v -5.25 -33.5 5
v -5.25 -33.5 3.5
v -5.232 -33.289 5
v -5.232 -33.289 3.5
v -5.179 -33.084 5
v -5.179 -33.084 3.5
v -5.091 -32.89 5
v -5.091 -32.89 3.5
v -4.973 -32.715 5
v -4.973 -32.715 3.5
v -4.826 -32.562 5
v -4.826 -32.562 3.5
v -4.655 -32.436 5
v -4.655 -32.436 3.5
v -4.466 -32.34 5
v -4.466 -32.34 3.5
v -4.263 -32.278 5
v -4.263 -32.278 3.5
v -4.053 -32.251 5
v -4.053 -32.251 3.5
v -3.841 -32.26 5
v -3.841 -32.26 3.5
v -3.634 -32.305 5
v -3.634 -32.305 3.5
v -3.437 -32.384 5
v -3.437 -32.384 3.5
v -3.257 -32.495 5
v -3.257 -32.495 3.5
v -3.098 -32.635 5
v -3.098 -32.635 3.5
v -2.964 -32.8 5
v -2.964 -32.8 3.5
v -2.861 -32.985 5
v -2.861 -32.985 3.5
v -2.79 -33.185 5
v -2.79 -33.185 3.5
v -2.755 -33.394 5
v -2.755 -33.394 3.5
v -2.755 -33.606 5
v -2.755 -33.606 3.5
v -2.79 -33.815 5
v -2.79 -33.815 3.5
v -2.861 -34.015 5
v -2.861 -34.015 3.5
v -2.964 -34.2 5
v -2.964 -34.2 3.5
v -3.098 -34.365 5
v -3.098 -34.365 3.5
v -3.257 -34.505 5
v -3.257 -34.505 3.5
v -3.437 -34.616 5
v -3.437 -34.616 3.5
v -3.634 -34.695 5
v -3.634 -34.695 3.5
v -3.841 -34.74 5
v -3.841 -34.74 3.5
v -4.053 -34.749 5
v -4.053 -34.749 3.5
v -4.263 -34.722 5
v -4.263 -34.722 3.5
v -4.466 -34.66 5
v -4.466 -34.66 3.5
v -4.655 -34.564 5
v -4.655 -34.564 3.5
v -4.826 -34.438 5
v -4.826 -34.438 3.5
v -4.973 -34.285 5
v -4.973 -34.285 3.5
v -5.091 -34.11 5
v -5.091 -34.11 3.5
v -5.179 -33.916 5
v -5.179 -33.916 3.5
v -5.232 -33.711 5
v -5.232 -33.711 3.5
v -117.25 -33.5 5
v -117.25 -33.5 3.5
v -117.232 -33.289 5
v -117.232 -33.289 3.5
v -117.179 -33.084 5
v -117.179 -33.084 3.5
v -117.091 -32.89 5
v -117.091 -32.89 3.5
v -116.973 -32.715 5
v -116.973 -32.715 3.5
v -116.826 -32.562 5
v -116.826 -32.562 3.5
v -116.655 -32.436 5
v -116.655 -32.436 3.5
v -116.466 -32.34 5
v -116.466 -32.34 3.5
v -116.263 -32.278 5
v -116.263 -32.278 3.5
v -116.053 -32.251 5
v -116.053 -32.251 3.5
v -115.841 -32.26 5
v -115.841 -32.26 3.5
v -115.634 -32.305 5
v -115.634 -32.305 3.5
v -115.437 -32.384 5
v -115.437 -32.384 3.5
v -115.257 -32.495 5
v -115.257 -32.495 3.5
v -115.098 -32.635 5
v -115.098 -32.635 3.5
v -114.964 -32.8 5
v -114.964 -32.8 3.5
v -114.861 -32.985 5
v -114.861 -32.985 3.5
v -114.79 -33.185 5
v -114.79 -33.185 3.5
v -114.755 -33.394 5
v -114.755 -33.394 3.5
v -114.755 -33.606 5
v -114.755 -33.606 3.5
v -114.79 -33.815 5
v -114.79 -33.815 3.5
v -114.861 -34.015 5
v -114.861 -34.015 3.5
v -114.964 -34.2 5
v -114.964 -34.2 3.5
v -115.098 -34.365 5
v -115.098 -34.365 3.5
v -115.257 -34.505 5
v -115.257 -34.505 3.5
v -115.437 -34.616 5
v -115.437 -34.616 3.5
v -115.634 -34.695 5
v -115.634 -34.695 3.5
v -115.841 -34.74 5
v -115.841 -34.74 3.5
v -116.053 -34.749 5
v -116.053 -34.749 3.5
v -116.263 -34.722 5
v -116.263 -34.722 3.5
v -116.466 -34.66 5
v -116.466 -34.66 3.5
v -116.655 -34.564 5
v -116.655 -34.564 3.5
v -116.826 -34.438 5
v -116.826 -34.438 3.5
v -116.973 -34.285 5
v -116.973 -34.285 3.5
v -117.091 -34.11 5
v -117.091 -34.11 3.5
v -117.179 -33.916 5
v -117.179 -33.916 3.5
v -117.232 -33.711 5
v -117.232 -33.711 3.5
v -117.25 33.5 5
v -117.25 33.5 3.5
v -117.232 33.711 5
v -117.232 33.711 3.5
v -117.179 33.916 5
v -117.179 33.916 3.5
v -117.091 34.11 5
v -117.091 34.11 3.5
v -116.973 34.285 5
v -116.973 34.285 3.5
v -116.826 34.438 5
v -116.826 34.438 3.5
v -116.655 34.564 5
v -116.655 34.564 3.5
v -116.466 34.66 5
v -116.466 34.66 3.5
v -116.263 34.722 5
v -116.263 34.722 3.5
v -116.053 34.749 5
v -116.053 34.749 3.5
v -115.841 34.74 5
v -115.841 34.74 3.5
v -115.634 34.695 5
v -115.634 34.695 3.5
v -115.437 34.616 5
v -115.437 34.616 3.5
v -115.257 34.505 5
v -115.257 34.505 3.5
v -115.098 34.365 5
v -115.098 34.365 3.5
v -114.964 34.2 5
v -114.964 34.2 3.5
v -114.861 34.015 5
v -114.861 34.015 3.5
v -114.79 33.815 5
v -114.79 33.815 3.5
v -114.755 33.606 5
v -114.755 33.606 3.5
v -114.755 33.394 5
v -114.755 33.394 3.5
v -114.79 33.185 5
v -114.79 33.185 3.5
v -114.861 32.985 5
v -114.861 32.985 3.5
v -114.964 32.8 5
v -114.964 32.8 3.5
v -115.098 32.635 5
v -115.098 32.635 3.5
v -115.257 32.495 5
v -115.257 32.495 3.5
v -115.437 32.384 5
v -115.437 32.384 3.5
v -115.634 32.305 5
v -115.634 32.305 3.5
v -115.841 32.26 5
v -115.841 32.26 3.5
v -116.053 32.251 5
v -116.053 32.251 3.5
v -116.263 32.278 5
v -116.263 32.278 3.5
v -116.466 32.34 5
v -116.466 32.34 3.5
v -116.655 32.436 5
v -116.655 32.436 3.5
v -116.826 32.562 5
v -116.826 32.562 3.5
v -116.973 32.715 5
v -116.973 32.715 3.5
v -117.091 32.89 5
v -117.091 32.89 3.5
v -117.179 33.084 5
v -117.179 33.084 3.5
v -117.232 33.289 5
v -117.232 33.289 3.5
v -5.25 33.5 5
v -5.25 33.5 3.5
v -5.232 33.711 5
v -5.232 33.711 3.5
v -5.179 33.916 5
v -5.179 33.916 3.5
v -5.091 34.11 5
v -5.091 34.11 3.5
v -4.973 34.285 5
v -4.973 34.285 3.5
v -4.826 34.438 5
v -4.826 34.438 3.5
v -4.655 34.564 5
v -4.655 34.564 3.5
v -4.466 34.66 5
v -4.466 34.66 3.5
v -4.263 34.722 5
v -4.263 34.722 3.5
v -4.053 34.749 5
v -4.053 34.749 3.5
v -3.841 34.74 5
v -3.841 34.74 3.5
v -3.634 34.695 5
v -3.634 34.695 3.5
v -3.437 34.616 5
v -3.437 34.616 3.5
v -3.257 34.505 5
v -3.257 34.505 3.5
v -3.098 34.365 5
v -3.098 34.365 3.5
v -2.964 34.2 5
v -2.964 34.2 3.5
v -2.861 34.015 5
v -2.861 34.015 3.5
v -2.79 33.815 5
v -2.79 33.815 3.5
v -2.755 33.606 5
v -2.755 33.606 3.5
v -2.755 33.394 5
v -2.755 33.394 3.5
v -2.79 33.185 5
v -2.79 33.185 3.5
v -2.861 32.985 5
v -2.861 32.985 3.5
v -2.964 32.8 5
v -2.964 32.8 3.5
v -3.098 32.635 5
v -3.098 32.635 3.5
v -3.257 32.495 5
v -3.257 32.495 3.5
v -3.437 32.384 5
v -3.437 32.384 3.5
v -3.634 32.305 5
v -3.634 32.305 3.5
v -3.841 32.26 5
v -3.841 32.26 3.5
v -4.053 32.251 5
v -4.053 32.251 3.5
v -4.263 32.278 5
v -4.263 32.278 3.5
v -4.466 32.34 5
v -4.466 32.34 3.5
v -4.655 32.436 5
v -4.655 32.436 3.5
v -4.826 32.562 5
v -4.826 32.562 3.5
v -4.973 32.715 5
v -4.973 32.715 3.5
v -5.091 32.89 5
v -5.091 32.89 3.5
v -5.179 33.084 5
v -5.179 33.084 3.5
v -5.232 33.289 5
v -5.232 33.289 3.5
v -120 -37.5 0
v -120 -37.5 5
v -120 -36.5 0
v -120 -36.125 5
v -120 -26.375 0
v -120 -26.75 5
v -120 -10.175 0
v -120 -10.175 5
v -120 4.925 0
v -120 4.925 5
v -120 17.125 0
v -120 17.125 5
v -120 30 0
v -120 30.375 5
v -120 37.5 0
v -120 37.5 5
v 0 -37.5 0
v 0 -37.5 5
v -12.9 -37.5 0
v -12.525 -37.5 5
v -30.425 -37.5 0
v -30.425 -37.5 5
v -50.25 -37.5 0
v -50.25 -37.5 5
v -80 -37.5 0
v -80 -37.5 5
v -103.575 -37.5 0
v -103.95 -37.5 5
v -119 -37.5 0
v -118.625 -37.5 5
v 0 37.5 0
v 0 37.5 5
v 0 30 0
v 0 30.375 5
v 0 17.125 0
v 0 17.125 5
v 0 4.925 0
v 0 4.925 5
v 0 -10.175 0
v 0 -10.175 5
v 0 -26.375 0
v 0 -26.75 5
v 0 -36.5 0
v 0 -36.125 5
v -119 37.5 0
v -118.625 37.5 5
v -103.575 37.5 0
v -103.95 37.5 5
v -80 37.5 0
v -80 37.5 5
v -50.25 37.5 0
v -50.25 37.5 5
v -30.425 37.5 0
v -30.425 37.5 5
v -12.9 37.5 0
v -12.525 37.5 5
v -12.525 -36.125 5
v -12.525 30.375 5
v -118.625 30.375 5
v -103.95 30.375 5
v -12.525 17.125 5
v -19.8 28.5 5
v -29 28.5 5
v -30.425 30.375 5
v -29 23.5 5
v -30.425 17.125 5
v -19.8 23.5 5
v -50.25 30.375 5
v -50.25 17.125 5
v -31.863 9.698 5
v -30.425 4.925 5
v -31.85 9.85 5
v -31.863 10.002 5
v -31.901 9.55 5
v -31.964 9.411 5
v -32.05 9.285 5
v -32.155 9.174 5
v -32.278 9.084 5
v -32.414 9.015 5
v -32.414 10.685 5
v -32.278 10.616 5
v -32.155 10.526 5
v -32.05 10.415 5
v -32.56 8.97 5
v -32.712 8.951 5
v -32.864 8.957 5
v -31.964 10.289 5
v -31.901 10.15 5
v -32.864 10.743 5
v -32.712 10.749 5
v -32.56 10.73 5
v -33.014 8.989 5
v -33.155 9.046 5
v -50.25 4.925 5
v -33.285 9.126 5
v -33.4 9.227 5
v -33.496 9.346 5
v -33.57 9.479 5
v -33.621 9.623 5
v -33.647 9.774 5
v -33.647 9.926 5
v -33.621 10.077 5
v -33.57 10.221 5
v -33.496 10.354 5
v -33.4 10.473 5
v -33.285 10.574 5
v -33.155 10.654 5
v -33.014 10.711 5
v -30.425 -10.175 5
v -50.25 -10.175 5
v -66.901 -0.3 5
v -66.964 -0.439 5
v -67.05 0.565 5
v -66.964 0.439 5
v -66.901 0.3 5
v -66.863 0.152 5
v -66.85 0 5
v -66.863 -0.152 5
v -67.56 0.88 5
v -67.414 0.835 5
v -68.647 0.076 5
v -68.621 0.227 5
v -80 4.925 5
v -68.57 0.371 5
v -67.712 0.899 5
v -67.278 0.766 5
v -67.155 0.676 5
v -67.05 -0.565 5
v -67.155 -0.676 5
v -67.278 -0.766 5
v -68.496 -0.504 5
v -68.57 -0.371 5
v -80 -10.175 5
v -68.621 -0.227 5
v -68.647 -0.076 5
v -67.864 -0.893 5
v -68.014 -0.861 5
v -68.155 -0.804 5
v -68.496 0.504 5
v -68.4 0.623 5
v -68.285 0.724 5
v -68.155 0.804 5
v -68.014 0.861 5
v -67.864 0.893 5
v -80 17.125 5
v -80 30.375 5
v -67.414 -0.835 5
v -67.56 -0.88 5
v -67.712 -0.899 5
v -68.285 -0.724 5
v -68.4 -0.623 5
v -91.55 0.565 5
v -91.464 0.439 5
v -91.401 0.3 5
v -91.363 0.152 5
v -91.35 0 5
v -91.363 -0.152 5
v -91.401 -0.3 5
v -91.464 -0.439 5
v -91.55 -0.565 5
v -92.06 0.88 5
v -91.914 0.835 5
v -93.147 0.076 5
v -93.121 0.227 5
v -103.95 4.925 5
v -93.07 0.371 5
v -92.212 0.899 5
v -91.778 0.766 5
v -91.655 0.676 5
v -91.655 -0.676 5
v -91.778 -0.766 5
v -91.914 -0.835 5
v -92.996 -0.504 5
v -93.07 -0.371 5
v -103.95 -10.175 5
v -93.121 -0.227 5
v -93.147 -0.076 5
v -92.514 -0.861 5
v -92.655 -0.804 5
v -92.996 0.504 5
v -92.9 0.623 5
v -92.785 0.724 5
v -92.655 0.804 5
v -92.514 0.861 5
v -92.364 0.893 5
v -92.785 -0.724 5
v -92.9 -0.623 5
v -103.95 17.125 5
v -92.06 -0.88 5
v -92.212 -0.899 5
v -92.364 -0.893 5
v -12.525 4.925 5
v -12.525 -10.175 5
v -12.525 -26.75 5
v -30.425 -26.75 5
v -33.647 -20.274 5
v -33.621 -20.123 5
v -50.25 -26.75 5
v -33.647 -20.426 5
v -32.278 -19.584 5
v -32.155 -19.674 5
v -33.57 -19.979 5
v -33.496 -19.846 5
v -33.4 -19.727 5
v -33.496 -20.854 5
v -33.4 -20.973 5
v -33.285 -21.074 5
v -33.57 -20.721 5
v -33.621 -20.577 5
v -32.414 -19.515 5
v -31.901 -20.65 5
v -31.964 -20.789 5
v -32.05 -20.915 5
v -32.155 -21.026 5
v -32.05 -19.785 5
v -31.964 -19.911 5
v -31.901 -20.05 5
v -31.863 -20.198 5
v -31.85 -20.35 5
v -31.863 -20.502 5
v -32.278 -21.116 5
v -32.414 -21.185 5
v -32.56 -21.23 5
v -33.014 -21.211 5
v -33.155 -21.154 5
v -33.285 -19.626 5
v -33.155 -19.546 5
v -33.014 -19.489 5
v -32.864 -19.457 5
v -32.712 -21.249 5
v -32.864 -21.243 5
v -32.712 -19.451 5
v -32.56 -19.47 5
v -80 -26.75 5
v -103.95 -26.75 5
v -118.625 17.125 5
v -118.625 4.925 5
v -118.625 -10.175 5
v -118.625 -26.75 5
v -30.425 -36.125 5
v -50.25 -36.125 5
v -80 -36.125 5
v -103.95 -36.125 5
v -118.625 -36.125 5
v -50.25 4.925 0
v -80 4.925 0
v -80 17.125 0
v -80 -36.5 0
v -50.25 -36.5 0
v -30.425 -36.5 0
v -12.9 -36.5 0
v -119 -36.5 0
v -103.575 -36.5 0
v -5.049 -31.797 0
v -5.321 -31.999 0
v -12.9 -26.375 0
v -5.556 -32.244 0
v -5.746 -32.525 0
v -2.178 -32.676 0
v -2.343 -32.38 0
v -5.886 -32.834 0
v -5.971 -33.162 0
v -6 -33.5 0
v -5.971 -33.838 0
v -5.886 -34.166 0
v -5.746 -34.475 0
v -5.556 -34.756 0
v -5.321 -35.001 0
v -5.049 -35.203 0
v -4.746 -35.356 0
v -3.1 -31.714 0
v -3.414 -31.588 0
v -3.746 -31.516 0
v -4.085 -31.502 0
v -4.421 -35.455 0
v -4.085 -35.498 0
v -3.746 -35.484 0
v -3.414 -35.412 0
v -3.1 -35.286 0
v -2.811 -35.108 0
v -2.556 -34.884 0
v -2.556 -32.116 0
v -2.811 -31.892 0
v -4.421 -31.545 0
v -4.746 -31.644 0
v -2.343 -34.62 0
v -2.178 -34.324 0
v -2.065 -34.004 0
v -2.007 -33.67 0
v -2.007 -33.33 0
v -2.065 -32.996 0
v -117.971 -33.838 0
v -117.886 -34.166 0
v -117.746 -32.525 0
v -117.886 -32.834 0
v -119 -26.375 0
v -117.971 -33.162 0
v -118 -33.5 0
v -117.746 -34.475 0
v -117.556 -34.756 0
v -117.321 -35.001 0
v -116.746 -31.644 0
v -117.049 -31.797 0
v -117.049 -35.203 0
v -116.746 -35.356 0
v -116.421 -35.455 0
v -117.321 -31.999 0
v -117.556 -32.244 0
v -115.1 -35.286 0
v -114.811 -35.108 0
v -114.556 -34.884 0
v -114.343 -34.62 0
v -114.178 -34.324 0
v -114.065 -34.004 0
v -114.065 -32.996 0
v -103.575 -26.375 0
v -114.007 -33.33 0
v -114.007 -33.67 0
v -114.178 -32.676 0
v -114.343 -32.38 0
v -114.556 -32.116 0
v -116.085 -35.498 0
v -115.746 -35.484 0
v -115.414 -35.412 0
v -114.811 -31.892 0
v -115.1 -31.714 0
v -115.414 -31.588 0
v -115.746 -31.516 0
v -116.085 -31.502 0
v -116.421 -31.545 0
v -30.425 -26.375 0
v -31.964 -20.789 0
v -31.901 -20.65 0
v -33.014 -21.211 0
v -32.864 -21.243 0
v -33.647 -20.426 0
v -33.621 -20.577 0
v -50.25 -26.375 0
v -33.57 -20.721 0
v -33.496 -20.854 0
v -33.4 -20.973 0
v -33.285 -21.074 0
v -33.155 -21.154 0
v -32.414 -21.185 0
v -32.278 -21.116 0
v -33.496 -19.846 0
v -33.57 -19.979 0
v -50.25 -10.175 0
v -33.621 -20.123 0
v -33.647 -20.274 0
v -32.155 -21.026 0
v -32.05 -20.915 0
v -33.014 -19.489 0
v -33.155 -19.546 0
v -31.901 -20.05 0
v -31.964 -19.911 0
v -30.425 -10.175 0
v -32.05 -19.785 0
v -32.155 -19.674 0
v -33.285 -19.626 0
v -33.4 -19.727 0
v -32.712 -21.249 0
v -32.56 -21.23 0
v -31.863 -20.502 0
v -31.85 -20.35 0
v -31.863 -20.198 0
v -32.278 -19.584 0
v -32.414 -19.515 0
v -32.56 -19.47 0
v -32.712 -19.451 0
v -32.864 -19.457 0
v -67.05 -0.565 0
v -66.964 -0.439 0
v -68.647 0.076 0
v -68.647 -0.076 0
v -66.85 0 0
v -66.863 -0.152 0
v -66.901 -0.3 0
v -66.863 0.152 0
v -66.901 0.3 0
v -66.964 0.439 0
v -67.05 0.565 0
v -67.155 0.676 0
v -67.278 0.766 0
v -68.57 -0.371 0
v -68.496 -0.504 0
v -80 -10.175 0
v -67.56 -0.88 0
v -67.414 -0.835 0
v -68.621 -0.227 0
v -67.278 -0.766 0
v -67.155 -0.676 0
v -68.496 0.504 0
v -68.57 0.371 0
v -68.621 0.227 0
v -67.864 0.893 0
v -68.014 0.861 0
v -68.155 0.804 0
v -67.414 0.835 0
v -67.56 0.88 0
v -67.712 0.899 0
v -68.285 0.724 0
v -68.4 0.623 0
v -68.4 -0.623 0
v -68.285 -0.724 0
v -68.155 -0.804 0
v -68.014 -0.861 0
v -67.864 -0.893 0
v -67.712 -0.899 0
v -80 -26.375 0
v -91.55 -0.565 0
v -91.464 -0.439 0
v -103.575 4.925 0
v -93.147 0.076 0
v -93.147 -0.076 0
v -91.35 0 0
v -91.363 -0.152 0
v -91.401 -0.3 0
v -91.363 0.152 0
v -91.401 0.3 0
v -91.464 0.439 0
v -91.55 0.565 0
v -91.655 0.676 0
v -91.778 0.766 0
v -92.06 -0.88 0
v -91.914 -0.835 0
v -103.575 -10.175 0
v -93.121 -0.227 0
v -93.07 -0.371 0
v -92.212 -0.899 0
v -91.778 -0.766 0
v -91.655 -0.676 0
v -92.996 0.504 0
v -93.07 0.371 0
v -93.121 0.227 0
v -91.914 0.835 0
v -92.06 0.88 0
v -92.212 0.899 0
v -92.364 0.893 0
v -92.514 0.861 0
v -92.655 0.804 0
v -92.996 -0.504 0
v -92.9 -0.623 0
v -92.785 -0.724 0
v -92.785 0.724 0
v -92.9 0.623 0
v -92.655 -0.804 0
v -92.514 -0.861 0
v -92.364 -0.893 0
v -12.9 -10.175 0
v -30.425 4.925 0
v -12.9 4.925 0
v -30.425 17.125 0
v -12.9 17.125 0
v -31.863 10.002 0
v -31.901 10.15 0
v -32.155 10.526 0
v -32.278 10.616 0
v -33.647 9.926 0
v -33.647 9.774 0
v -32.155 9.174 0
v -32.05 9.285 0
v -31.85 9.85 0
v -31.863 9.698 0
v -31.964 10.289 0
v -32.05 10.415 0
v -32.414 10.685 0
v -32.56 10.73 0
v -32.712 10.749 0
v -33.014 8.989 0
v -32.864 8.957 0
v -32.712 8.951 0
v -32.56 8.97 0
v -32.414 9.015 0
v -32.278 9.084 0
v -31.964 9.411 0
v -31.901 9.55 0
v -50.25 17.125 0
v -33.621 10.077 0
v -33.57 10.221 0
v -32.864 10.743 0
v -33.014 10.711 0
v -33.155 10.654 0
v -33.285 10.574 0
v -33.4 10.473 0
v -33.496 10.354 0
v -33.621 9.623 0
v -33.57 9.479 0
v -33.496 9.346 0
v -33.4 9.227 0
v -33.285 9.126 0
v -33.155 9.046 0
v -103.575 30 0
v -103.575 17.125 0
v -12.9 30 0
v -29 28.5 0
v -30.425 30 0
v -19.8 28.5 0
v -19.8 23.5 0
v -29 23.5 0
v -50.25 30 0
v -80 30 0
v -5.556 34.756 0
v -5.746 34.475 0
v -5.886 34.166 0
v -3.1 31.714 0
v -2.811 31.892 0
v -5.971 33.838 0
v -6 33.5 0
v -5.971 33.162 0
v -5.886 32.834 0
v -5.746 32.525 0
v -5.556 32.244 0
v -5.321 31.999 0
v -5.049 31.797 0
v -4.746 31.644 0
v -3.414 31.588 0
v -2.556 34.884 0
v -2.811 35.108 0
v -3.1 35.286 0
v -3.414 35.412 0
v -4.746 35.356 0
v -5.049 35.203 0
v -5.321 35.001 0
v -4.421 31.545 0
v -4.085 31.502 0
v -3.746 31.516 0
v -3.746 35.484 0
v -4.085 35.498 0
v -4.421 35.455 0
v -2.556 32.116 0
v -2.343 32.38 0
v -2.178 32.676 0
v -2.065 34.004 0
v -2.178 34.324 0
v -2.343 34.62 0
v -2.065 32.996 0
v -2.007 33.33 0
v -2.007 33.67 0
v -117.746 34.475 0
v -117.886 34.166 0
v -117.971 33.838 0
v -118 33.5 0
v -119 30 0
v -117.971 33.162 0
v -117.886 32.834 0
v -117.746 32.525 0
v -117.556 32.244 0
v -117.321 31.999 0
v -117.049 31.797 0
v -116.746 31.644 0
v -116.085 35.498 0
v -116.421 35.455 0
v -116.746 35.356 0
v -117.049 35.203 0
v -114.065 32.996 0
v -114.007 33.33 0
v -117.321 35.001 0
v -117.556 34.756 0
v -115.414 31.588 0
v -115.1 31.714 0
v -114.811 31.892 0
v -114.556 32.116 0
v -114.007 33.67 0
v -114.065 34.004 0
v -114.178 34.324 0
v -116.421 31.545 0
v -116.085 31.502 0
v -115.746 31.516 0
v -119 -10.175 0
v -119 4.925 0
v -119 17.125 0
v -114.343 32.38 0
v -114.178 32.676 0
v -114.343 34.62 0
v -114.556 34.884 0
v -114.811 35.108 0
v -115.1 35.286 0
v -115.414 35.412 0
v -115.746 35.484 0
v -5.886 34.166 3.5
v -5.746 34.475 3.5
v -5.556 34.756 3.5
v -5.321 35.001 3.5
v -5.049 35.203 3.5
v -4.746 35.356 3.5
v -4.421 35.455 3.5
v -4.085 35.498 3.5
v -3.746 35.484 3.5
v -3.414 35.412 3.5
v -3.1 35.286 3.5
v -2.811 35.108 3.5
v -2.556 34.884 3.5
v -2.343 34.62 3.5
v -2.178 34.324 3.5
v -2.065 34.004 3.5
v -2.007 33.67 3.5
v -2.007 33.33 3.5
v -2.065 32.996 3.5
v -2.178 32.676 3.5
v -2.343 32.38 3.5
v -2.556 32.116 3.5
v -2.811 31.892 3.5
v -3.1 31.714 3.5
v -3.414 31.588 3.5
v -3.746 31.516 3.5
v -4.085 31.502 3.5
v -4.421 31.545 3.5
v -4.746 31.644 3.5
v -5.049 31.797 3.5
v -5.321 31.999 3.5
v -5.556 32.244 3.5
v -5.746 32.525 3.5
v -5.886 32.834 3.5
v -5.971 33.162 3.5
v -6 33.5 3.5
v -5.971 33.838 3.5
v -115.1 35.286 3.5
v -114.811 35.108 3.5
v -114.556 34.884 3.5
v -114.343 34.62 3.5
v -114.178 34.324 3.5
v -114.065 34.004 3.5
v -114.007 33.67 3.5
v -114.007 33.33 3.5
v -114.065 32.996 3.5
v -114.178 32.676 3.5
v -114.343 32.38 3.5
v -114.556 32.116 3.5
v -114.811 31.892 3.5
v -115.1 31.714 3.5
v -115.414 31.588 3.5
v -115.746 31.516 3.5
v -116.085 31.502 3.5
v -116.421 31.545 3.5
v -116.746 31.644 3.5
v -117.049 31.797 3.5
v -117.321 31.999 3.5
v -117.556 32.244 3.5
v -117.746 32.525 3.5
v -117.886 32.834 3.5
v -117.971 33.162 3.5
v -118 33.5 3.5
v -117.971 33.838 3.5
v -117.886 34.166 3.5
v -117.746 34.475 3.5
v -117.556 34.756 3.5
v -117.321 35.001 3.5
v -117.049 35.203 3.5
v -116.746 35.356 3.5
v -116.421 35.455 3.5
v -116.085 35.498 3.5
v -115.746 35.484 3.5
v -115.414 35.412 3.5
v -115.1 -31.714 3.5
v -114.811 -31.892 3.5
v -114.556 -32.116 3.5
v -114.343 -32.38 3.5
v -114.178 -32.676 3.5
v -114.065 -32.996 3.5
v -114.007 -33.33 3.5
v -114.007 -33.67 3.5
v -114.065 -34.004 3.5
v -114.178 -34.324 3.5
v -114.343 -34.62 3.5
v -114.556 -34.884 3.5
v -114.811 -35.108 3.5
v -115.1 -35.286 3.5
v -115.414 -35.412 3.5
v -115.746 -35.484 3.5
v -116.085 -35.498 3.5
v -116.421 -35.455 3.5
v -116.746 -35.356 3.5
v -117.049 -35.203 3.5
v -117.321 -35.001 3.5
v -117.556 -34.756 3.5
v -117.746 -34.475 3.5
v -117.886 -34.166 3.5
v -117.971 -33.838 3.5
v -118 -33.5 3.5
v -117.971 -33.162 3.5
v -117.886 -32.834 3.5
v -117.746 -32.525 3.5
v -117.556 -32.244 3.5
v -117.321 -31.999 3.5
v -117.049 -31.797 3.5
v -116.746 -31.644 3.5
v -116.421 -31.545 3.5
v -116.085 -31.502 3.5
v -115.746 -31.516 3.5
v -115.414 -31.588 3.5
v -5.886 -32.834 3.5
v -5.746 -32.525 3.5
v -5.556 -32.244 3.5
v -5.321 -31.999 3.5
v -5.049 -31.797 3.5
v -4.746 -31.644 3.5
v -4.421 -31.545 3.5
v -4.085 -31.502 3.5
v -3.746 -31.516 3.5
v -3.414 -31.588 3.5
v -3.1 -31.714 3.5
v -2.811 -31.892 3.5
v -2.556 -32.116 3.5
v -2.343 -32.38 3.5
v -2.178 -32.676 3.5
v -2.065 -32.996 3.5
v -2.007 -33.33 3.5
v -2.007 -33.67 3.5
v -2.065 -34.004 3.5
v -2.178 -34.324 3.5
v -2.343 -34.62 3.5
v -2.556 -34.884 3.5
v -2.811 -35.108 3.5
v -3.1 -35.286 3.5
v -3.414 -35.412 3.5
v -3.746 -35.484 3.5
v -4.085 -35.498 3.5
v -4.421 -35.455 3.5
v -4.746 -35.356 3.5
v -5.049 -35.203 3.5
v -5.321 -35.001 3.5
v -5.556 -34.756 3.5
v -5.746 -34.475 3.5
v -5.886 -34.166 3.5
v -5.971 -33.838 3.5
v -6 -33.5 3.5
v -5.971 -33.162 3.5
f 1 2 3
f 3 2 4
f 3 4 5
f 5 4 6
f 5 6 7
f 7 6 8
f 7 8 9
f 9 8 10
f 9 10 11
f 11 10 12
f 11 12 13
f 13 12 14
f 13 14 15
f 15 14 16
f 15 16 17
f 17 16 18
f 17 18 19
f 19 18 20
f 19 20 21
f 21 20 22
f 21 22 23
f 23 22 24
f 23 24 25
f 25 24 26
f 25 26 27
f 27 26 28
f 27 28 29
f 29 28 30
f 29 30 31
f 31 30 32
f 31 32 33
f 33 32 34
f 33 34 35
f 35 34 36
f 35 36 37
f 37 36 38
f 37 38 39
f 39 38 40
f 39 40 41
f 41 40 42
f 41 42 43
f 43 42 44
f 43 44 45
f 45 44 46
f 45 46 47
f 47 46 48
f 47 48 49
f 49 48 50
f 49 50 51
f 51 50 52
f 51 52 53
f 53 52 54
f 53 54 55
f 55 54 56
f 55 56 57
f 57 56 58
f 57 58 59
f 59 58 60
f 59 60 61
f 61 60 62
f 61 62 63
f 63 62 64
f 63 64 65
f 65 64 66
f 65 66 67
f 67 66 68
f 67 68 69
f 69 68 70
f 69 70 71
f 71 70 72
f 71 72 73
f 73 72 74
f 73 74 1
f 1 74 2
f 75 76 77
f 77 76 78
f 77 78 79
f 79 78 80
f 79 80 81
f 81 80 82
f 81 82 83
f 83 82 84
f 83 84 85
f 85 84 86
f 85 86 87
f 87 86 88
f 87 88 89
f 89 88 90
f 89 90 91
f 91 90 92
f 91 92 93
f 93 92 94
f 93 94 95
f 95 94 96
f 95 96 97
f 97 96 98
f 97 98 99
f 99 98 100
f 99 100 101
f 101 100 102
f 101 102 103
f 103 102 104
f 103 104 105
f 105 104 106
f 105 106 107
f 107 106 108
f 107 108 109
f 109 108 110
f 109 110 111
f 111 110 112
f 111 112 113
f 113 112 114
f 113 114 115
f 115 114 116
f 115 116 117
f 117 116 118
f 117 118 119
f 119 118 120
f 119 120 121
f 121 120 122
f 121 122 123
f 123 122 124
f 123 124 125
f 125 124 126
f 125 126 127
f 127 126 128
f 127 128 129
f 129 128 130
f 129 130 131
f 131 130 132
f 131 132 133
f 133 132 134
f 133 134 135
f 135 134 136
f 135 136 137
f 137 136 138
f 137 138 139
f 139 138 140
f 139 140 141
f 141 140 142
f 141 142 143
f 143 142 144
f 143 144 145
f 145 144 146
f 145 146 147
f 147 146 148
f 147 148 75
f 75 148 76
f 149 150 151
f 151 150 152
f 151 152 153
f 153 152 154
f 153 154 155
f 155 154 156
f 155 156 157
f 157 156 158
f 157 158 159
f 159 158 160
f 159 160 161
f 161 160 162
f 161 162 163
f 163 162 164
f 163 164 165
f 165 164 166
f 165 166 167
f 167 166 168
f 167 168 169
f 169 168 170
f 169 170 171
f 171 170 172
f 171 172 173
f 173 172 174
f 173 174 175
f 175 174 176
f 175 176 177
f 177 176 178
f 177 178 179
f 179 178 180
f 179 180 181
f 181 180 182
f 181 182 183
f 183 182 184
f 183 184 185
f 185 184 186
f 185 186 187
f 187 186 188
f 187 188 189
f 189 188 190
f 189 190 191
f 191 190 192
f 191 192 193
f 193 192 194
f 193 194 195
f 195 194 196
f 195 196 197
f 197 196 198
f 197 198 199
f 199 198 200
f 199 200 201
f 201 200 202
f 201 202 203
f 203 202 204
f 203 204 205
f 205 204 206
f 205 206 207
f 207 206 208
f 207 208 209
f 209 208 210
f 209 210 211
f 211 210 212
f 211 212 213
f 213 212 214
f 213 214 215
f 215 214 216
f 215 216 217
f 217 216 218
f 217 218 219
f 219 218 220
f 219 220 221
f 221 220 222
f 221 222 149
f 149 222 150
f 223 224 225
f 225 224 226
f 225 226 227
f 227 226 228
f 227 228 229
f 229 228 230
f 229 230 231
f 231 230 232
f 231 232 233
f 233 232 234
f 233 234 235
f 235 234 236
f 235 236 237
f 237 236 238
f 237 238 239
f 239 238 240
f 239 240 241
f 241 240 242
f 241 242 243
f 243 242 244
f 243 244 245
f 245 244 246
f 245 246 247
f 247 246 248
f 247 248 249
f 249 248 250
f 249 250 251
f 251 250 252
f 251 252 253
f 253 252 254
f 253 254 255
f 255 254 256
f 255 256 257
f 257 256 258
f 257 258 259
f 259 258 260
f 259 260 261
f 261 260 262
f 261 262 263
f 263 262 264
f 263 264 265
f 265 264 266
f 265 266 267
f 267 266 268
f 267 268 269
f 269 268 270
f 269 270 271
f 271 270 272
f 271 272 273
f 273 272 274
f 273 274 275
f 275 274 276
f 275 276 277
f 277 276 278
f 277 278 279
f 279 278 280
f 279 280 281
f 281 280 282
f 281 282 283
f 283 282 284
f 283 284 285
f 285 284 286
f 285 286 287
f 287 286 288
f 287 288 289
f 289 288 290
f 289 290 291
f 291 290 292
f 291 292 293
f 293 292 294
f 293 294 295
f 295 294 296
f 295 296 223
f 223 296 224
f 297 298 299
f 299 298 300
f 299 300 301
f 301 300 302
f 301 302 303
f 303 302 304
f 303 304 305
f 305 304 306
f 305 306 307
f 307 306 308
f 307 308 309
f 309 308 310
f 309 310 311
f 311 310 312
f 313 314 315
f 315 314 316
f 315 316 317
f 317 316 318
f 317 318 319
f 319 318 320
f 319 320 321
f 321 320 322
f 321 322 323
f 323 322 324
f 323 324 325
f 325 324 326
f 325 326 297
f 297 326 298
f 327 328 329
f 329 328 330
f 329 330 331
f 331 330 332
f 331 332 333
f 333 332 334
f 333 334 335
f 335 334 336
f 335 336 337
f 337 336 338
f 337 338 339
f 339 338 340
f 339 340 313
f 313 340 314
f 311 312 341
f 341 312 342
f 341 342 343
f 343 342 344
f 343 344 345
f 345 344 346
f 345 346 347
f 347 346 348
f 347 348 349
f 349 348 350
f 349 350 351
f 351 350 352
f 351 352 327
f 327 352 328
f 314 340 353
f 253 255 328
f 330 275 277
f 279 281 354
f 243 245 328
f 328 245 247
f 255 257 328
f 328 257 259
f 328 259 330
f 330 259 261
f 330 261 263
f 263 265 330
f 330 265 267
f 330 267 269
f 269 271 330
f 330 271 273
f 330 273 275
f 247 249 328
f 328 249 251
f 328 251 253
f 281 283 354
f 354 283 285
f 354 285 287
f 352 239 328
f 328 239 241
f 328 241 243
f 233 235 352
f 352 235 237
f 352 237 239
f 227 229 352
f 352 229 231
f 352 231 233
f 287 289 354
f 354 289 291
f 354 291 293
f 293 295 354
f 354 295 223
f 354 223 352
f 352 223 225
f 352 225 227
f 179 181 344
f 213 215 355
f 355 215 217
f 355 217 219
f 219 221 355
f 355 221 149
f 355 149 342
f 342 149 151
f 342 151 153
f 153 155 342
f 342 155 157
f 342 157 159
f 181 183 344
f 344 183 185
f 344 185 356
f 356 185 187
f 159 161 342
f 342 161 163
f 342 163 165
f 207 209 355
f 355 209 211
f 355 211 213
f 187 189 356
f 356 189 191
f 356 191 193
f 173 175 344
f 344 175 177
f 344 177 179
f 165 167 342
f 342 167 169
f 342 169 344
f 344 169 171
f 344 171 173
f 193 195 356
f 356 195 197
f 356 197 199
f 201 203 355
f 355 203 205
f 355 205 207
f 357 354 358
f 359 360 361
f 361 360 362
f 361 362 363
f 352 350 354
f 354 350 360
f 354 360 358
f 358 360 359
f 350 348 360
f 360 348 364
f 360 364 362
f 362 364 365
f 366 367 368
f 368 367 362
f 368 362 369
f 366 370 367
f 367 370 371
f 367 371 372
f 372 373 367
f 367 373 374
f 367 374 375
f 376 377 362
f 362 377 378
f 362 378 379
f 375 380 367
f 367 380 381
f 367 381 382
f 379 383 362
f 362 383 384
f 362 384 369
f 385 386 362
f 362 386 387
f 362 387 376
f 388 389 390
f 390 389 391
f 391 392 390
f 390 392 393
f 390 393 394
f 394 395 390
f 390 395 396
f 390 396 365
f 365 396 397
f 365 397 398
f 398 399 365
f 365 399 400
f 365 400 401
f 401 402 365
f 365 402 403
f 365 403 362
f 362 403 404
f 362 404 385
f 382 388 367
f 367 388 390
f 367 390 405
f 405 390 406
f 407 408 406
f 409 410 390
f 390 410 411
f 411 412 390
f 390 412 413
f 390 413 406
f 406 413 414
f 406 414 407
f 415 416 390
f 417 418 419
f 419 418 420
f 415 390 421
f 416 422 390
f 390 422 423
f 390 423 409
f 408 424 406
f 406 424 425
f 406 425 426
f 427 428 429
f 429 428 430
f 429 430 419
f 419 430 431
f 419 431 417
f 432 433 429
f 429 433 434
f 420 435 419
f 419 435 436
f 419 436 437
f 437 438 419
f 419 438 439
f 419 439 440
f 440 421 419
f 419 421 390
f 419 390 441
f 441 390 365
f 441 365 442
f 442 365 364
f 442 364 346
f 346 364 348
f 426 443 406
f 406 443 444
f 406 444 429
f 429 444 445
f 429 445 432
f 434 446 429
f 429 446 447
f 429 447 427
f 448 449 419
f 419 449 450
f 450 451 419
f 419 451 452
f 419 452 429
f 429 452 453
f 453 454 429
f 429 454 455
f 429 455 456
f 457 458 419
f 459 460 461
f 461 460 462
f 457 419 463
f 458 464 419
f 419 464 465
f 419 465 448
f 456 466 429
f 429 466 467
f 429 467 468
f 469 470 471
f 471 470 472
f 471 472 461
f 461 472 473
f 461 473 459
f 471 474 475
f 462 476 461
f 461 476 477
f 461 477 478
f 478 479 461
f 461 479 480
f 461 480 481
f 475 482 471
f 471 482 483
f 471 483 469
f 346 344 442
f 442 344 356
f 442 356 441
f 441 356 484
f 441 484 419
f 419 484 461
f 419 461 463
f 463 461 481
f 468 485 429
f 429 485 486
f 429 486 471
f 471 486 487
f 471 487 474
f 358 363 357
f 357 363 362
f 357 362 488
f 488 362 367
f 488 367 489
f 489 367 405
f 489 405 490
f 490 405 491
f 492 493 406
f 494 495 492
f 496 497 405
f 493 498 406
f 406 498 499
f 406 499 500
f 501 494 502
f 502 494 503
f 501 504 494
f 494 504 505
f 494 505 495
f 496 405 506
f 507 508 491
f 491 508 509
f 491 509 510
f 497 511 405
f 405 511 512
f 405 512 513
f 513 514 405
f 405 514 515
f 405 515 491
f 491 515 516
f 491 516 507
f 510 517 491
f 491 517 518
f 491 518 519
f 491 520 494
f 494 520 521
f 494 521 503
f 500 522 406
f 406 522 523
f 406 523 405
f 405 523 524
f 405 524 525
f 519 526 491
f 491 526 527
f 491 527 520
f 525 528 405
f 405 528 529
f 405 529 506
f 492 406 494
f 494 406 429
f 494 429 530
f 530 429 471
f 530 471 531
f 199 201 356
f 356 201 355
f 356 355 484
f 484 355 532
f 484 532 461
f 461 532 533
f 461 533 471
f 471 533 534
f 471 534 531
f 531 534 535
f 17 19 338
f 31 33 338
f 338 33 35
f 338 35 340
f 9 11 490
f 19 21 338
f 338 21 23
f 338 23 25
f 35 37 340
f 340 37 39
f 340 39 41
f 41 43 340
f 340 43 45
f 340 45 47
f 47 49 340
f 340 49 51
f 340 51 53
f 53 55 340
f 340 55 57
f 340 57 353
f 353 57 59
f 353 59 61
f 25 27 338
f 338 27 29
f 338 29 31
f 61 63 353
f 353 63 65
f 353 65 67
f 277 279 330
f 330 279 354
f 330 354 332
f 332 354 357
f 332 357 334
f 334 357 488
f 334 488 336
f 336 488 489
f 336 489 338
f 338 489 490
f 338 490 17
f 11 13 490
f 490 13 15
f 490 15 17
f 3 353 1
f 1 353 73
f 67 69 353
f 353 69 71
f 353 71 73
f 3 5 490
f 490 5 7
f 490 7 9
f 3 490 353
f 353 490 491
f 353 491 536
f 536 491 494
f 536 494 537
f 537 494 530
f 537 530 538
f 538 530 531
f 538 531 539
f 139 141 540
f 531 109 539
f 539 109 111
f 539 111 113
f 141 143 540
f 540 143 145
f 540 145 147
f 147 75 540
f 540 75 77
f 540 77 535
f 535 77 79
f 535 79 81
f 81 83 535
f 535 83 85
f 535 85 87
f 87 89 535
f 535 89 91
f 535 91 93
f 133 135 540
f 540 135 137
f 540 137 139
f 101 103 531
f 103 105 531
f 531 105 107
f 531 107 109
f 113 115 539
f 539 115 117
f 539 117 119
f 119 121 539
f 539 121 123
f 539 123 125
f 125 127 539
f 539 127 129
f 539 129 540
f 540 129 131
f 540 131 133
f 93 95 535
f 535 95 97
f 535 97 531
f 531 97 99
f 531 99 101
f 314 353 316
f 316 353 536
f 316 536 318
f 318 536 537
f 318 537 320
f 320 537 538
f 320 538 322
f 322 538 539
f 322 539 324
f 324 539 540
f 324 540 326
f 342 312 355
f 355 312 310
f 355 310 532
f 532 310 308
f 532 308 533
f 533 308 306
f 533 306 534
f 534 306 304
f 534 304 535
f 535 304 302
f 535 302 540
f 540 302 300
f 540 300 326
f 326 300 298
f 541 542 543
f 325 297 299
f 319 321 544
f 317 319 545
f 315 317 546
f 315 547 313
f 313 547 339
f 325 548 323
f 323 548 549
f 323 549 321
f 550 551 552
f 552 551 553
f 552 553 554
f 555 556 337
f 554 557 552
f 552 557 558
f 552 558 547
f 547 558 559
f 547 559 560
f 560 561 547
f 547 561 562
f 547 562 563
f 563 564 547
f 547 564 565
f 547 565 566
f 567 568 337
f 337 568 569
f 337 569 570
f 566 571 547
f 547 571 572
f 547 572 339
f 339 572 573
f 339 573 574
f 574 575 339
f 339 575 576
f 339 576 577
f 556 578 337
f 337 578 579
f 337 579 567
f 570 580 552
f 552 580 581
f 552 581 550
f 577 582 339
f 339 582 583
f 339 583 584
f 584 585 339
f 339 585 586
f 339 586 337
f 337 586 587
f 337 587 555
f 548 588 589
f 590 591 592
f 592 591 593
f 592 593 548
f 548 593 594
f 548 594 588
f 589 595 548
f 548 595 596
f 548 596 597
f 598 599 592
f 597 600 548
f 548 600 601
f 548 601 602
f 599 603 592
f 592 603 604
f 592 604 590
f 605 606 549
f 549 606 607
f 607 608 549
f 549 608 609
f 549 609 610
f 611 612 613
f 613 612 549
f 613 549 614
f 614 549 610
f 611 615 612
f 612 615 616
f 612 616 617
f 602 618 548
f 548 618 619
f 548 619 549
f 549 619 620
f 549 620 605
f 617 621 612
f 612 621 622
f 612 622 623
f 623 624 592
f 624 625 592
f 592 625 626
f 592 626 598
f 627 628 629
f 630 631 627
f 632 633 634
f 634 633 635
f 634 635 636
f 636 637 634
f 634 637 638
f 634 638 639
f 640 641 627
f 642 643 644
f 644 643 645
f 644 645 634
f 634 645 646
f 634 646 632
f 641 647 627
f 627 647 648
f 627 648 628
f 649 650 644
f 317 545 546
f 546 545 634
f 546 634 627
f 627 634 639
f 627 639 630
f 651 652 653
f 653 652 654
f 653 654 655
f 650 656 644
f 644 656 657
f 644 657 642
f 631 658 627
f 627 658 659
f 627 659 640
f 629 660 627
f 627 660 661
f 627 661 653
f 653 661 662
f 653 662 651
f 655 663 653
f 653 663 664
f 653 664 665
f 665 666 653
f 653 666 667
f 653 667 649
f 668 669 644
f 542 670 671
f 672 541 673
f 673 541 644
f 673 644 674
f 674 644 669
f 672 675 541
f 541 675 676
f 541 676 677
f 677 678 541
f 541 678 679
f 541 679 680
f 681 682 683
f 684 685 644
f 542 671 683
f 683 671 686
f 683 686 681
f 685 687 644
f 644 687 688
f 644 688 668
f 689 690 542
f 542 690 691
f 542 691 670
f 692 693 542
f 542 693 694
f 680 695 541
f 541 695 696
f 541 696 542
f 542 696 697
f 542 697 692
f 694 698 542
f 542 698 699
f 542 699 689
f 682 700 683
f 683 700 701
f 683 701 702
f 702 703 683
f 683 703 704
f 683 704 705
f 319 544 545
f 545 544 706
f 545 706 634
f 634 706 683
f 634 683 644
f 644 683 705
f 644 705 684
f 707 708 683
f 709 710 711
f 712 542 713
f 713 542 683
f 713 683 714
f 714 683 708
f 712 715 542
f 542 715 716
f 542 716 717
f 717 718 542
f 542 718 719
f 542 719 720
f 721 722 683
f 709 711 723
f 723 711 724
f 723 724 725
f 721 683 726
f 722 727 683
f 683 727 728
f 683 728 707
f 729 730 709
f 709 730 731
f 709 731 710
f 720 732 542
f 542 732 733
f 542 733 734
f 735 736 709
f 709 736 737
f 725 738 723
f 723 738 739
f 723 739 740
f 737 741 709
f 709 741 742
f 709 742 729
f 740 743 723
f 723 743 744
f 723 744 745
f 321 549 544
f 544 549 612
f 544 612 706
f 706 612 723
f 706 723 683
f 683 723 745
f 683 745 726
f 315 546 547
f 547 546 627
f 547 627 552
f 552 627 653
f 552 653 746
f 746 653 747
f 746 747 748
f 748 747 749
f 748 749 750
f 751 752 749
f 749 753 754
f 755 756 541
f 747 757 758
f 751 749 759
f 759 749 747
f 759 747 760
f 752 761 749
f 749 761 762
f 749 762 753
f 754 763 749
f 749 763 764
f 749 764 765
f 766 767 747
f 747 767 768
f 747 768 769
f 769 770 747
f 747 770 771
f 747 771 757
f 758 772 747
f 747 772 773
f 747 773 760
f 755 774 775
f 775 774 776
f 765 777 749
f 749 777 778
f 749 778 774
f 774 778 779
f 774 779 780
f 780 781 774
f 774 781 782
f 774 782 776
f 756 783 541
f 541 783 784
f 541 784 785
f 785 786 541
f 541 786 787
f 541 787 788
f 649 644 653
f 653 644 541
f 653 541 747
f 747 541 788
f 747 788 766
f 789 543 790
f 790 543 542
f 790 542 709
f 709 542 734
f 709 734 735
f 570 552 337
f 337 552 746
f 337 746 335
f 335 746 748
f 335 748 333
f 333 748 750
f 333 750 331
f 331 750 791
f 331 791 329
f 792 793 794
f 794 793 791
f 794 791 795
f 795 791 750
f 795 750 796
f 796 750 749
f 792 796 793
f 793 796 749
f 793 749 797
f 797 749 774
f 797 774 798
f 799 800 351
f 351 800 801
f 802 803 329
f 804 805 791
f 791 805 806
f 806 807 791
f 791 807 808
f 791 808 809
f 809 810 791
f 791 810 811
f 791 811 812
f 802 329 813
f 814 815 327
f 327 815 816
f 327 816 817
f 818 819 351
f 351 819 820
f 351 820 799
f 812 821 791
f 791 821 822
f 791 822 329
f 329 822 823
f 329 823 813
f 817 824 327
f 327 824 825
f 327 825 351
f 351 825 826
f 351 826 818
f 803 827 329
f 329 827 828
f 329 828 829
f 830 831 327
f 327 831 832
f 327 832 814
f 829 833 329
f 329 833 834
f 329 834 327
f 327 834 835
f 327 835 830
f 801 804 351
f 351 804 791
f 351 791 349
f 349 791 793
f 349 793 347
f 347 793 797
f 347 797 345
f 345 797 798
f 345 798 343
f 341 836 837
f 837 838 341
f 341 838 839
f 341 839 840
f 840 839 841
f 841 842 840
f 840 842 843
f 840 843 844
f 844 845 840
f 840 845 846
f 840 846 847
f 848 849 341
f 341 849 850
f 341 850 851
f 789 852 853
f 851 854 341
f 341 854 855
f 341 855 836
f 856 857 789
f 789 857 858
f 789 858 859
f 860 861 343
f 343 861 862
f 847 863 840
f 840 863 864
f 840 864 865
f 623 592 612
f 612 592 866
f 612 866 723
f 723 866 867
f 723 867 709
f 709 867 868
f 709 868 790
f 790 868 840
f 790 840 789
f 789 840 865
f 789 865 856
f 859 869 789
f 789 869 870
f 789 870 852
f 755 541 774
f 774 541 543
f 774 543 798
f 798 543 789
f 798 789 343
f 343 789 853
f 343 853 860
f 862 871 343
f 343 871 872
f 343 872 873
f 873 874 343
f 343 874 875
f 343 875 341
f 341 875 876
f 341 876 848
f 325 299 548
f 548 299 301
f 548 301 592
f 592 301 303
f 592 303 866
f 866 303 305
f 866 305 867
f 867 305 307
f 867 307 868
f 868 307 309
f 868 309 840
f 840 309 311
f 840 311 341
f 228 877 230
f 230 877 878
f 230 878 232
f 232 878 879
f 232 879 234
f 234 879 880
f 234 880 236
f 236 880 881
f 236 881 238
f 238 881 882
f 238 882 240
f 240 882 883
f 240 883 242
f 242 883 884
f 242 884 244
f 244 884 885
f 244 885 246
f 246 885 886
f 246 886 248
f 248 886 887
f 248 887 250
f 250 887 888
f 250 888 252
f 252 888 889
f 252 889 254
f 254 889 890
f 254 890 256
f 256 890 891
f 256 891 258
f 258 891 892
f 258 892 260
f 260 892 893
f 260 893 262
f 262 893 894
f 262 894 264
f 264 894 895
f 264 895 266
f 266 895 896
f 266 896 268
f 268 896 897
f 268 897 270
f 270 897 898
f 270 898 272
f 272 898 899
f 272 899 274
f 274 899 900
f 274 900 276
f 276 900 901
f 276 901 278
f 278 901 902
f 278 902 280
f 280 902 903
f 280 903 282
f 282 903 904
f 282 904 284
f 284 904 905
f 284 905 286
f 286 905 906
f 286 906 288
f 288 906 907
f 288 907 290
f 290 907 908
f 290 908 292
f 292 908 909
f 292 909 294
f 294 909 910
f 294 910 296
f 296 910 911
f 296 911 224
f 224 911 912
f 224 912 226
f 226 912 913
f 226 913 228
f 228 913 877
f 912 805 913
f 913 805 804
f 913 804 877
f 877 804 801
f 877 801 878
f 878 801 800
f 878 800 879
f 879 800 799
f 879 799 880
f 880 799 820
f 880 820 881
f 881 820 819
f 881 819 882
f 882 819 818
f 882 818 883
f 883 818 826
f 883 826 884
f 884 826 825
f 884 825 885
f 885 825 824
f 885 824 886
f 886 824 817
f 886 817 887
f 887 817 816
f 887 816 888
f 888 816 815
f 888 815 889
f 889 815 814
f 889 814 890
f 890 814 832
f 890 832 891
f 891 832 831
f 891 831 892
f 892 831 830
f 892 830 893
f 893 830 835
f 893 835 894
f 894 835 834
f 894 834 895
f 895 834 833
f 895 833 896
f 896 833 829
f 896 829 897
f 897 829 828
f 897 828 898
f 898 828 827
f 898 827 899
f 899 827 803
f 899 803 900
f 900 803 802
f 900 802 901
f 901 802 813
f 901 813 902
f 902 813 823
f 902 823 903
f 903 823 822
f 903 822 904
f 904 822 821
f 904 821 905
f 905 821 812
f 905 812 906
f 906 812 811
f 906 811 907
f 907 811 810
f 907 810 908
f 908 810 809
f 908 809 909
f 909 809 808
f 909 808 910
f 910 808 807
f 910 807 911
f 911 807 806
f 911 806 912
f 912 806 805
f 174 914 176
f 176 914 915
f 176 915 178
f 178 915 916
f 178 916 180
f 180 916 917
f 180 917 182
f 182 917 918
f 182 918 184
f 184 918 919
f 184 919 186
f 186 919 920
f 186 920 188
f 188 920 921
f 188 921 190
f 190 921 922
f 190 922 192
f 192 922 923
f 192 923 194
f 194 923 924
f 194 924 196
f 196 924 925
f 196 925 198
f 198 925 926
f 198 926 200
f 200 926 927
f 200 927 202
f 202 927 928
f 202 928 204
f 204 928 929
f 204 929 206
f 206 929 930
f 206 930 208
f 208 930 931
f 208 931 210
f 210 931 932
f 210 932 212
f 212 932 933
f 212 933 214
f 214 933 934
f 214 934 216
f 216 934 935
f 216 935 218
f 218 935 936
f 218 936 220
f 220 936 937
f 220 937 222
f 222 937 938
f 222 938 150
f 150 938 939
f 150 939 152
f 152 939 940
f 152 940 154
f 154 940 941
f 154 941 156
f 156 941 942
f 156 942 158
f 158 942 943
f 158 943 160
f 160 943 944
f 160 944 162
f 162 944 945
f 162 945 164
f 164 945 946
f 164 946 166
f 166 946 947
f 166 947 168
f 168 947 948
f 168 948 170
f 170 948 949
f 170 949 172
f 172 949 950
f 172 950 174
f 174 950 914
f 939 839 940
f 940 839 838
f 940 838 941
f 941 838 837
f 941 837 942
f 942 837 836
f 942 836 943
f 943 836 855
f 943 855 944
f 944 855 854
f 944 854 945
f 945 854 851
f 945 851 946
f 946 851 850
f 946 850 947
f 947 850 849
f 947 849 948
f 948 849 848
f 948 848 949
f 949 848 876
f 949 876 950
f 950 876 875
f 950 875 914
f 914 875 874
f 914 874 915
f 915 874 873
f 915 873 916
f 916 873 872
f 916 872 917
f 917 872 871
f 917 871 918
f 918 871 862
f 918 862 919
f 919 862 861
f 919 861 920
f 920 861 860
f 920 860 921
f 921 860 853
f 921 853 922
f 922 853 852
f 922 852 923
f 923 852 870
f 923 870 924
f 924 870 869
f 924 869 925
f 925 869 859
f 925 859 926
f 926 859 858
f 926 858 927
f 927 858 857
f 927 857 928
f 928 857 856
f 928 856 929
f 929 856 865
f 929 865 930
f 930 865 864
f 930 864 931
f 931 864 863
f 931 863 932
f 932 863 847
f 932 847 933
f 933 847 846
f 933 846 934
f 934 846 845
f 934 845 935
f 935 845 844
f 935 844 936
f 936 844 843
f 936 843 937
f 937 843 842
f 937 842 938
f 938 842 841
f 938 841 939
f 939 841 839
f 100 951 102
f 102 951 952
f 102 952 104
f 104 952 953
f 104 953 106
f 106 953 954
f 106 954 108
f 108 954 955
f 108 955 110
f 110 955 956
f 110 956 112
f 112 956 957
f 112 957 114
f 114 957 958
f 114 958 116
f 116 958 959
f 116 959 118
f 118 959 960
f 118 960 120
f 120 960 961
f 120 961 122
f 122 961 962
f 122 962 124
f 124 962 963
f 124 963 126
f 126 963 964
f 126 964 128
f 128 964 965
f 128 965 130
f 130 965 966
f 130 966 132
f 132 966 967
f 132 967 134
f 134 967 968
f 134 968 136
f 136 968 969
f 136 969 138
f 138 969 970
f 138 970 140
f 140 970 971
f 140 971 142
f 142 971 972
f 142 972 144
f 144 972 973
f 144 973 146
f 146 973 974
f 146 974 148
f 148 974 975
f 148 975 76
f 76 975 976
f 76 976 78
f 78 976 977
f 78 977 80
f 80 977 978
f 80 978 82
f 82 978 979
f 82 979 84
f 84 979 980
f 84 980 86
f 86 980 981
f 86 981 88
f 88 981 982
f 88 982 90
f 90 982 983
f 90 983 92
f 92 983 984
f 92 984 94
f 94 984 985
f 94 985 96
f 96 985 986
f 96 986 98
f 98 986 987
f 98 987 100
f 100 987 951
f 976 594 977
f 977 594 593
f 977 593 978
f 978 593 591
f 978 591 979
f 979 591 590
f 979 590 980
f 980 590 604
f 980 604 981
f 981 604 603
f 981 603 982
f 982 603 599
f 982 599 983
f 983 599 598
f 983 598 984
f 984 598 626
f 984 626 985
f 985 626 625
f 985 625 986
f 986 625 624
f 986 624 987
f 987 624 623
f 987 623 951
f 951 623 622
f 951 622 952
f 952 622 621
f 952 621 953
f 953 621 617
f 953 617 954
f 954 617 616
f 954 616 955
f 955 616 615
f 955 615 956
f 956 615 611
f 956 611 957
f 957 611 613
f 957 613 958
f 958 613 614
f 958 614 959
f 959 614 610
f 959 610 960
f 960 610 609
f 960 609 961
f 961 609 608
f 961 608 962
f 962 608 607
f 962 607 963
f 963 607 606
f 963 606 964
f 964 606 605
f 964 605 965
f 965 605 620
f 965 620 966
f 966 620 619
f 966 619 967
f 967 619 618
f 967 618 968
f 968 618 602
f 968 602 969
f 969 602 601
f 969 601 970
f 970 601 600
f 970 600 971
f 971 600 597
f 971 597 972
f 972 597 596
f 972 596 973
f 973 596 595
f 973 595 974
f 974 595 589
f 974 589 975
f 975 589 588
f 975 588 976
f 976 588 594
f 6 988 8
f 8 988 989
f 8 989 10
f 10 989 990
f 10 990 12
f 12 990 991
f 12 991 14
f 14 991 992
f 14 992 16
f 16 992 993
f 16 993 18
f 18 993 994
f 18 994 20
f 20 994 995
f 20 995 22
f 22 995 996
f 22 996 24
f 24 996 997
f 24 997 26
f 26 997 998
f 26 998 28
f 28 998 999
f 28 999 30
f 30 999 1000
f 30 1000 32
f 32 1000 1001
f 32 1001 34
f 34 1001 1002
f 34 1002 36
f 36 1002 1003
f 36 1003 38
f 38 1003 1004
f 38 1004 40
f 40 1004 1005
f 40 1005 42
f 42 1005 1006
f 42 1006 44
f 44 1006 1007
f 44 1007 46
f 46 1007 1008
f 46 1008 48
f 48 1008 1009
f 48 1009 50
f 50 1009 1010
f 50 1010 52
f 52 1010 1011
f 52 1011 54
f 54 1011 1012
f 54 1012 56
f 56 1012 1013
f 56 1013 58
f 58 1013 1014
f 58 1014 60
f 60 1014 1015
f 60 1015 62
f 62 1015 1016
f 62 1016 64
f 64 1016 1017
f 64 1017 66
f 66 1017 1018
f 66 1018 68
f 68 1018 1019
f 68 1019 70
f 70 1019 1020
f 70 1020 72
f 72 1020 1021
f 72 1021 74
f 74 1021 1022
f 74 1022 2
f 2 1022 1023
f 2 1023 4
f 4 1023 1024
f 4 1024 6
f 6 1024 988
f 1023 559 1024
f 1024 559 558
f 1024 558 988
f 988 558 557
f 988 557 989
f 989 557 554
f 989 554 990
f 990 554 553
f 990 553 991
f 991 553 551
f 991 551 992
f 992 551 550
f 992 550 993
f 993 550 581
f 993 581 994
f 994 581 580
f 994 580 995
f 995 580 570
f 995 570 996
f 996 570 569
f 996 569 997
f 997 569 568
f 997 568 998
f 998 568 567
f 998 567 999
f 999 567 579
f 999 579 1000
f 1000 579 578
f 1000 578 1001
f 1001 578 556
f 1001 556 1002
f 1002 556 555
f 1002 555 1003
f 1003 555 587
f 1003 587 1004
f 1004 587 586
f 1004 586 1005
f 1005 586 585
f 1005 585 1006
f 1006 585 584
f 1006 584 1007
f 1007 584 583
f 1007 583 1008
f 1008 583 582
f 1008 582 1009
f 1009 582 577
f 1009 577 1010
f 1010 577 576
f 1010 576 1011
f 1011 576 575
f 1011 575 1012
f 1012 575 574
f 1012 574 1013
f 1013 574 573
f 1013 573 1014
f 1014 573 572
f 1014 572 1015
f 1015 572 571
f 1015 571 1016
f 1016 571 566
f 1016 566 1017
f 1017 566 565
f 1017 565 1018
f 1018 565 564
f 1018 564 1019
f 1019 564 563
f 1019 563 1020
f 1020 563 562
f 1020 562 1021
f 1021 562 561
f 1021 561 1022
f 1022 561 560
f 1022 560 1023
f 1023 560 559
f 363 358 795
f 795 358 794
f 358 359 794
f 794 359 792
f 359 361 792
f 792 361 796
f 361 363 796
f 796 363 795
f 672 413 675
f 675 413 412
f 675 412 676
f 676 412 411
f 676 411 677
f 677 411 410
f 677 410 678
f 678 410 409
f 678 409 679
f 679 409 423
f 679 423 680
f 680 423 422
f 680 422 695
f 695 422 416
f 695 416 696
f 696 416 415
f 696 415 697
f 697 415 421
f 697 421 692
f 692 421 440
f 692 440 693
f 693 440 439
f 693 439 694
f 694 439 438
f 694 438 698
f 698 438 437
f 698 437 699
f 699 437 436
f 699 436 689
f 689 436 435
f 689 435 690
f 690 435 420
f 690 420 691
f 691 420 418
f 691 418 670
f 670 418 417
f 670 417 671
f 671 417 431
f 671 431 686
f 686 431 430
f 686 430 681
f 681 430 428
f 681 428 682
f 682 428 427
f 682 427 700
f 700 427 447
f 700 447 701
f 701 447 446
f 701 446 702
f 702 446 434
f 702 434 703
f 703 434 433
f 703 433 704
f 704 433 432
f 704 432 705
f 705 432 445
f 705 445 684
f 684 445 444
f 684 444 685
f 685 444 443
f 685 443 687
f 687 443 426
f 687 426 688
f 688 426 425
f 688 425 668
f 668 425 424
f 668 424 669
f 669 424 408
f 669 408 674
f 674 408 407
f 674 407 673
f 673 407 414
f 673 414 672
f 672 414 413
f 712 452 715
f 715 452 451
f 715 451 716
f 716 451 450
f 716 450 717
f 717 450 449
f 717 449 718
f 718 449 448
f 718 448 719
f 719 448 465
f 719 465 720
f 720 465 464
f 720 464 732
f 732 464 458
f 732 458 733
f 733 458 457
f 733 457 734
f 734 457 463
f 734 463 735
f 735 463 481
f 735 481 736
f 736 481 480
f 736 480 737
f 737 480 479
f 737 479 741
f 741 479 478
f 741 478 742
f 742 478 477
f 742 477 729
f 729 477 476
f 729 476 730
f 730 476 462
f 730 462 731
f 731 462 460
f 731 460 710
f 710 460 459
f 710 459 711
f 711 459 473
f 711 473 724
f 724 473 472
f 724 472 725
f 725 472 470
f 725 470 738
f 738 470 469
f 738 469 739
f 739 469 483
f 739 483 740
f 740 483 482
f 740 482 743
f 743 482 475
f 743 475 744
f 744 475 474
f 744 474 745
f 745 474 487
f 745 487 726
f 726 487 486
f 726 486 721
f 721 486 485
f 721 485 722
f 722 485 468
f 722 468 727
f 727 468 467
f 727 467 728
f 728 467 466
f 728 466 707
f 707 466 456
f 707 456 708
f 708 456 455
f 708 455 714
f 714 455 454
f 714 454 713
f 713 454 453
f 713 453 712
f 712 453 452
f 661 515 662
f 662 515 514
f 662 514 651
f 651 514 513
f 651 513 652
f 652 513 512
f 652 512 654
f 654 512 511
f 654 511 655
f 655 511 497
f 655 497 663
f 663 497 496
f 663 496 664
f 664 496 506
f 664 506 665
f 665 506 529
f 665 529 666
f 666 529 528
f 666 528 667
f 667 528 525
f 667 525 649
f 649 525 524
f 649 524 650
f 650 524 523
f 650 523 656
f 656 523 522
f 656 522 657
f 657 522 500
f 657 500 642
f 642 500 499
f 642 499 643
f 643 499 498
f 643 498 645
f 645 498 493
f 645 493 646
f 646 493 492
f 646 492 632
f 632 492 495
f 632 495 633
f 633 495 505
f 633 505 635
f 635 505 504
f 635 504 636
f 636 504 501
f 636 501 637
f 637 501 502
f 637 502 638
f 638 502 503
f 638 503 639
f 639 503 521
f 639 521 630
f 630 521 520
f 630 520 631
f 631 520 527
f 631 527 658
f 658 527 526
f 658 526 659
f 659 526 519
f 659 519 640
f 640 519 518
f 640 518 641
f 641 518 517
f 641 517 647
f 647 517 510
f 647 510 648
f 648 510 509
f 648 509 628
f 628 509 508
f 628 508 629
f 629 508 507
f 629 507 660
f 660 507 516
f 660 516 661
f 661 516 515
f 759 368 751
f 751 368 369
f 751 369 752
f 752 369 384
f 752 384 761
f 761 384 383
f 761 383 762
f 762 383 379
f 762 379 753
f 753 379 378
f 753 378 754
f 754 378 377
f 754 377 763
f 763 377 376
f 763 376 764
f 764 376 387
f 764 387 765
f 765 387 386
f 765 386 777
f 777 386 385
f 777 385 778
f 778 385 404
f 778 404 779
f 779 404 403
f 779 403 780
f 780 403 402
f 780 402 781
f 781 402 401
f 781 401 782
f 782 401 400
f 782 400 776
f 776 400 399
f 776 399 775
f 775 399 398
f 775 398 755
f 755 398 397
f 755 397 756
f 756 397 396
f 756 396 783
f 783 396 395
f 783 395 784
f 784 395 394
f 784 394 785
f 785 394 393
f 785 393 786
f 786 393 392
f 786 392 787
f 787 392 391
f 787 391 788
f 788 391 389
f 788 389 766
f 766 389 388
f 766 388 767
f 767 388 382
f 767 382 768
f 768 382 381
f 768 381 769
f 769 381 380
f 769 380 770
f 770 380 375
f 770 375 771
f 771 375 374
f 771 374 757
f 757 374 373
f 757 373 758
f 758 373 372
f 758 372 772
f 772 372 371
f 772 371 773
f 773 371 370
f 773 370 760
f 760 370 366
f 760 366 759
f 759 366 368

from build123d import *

# Parameters (mm, degrees)
SKETCH_1_W          = 120
SKETCH_1_H          = 75
EXTRUDE_1_DEPTH     = 5
SKETCH_2_R          = 1.25
CUT_EXTRUDE_1_DEPTH = 126.822295322
SKETCH_2_3_R        = 2
CUT_EXTRUDE_2_DEPTH = 3.5
SKETCH_3_W          = 9.2
SKETCH_3_H          = 5
CUT_EXTRUDE_3_DEPTH = 126.822295322
SKETCH_4_R          = 0.9
CUT_EXTRUDE_4_DEPTH = 126.822295322
SKETCH_5_R          = 0.9
CUT_EXTRUDE_5_DEPTH = 126.822295322


with BuildPart() as part:
    # 草图1 → 凸台-拉伸1 (new body)
    with BuildSketch(Plane.XY):
        with Locations((-60, 0)):
            Rectangle(SKETCH_1_W, SKETCH_1_H)
    extrude(amount=EXTRUDE_1_DEPTH)

    # 草图2 → 切除-拉伸1 (cut, through all)
    with BuildSketch(Plane(origin=(0, 0, 0), x_dir=(-1, 0, 0), z_dir=(0, 0, -1))):
        with Locations((4, 33.5)):
            Circle(SKETCH_2_R)
        with Locations((4, -33.5)):
            Circle(SKETCH_2_R)
        with Locations((116, -33.5)):
            Circle(SKETCH_2_R)
        with Locations((116, 33.5)):
            Circle(SKETCH_2_R)
    extrude(amount=-CUT_EXTRUDE_1_DEPTH, mode=Mode.SUBTRACT)

    # 草图2<3> → 切除-拉伸2 (cut)
    with BuildSketch(Plane(origin=(0, 0, 0), x_dir=(-1, 0, 0), z_dir=(0, 0, -1))):
        with Locations((4, 33.5)):
            Circle(SKETCH_2_3_R)
        with Locations((116, 33.5)):
            Circle(SKETCH_2_3_R)
        with Locations((4, -33.5)):
            Circle(SKETCH_2_3_R)
        with Locations((116, -33.5)):
            Circle(SKETCH_2_3_R)
    extrude(amount=-CUT_EXTRUDE_2_DEPTH, mode=Mode.SUBTRACT)

    # 草图3 → 切除-拉伸3 (cut, through all)
    with BuildSketch(Plane(origin=(0, 0, 0), x_dir=(-1, 0, 0), z_dir=(0, 0, -1))):
        with Locations((24.4, 26)):
            Rectangle(SKETCH_3_W, SKETCH_3_H)
    extrude(amount=-CUT_EXTRUDE_3_DEPTH, mode=Mode.SUBTRACT)

    # 草图4 → 切除-拉伸4 (cut, through all)
    with BuildSketch(Plane.XY.offset(5)):
        with Locations((-92.25, 0)):
            Circle(SKETCH_4_R)
        with Locations((-67.75, 0)):
            Circle(SKETCH_4_R)
    extrude(amount=-CUT_EXTRUDE_4_DEPTH, mode=Mode.SUBTRACT)

    # 草图5 → 切除-拉伸5 (cut, through all)
    with BuildSketch(Plane.XY.offset(5)):
        with Locations((-32.75, 9.85)):
            Circle(SKETCH_5_R)
        with Locations((-32.75, -20.35)):
            Circle(SKETCH_5_R)
    extrude(amount=-CUT_EXTRUDE_5_DEPTH, mode=Mode.SUBTRACT)


solid = part.part
